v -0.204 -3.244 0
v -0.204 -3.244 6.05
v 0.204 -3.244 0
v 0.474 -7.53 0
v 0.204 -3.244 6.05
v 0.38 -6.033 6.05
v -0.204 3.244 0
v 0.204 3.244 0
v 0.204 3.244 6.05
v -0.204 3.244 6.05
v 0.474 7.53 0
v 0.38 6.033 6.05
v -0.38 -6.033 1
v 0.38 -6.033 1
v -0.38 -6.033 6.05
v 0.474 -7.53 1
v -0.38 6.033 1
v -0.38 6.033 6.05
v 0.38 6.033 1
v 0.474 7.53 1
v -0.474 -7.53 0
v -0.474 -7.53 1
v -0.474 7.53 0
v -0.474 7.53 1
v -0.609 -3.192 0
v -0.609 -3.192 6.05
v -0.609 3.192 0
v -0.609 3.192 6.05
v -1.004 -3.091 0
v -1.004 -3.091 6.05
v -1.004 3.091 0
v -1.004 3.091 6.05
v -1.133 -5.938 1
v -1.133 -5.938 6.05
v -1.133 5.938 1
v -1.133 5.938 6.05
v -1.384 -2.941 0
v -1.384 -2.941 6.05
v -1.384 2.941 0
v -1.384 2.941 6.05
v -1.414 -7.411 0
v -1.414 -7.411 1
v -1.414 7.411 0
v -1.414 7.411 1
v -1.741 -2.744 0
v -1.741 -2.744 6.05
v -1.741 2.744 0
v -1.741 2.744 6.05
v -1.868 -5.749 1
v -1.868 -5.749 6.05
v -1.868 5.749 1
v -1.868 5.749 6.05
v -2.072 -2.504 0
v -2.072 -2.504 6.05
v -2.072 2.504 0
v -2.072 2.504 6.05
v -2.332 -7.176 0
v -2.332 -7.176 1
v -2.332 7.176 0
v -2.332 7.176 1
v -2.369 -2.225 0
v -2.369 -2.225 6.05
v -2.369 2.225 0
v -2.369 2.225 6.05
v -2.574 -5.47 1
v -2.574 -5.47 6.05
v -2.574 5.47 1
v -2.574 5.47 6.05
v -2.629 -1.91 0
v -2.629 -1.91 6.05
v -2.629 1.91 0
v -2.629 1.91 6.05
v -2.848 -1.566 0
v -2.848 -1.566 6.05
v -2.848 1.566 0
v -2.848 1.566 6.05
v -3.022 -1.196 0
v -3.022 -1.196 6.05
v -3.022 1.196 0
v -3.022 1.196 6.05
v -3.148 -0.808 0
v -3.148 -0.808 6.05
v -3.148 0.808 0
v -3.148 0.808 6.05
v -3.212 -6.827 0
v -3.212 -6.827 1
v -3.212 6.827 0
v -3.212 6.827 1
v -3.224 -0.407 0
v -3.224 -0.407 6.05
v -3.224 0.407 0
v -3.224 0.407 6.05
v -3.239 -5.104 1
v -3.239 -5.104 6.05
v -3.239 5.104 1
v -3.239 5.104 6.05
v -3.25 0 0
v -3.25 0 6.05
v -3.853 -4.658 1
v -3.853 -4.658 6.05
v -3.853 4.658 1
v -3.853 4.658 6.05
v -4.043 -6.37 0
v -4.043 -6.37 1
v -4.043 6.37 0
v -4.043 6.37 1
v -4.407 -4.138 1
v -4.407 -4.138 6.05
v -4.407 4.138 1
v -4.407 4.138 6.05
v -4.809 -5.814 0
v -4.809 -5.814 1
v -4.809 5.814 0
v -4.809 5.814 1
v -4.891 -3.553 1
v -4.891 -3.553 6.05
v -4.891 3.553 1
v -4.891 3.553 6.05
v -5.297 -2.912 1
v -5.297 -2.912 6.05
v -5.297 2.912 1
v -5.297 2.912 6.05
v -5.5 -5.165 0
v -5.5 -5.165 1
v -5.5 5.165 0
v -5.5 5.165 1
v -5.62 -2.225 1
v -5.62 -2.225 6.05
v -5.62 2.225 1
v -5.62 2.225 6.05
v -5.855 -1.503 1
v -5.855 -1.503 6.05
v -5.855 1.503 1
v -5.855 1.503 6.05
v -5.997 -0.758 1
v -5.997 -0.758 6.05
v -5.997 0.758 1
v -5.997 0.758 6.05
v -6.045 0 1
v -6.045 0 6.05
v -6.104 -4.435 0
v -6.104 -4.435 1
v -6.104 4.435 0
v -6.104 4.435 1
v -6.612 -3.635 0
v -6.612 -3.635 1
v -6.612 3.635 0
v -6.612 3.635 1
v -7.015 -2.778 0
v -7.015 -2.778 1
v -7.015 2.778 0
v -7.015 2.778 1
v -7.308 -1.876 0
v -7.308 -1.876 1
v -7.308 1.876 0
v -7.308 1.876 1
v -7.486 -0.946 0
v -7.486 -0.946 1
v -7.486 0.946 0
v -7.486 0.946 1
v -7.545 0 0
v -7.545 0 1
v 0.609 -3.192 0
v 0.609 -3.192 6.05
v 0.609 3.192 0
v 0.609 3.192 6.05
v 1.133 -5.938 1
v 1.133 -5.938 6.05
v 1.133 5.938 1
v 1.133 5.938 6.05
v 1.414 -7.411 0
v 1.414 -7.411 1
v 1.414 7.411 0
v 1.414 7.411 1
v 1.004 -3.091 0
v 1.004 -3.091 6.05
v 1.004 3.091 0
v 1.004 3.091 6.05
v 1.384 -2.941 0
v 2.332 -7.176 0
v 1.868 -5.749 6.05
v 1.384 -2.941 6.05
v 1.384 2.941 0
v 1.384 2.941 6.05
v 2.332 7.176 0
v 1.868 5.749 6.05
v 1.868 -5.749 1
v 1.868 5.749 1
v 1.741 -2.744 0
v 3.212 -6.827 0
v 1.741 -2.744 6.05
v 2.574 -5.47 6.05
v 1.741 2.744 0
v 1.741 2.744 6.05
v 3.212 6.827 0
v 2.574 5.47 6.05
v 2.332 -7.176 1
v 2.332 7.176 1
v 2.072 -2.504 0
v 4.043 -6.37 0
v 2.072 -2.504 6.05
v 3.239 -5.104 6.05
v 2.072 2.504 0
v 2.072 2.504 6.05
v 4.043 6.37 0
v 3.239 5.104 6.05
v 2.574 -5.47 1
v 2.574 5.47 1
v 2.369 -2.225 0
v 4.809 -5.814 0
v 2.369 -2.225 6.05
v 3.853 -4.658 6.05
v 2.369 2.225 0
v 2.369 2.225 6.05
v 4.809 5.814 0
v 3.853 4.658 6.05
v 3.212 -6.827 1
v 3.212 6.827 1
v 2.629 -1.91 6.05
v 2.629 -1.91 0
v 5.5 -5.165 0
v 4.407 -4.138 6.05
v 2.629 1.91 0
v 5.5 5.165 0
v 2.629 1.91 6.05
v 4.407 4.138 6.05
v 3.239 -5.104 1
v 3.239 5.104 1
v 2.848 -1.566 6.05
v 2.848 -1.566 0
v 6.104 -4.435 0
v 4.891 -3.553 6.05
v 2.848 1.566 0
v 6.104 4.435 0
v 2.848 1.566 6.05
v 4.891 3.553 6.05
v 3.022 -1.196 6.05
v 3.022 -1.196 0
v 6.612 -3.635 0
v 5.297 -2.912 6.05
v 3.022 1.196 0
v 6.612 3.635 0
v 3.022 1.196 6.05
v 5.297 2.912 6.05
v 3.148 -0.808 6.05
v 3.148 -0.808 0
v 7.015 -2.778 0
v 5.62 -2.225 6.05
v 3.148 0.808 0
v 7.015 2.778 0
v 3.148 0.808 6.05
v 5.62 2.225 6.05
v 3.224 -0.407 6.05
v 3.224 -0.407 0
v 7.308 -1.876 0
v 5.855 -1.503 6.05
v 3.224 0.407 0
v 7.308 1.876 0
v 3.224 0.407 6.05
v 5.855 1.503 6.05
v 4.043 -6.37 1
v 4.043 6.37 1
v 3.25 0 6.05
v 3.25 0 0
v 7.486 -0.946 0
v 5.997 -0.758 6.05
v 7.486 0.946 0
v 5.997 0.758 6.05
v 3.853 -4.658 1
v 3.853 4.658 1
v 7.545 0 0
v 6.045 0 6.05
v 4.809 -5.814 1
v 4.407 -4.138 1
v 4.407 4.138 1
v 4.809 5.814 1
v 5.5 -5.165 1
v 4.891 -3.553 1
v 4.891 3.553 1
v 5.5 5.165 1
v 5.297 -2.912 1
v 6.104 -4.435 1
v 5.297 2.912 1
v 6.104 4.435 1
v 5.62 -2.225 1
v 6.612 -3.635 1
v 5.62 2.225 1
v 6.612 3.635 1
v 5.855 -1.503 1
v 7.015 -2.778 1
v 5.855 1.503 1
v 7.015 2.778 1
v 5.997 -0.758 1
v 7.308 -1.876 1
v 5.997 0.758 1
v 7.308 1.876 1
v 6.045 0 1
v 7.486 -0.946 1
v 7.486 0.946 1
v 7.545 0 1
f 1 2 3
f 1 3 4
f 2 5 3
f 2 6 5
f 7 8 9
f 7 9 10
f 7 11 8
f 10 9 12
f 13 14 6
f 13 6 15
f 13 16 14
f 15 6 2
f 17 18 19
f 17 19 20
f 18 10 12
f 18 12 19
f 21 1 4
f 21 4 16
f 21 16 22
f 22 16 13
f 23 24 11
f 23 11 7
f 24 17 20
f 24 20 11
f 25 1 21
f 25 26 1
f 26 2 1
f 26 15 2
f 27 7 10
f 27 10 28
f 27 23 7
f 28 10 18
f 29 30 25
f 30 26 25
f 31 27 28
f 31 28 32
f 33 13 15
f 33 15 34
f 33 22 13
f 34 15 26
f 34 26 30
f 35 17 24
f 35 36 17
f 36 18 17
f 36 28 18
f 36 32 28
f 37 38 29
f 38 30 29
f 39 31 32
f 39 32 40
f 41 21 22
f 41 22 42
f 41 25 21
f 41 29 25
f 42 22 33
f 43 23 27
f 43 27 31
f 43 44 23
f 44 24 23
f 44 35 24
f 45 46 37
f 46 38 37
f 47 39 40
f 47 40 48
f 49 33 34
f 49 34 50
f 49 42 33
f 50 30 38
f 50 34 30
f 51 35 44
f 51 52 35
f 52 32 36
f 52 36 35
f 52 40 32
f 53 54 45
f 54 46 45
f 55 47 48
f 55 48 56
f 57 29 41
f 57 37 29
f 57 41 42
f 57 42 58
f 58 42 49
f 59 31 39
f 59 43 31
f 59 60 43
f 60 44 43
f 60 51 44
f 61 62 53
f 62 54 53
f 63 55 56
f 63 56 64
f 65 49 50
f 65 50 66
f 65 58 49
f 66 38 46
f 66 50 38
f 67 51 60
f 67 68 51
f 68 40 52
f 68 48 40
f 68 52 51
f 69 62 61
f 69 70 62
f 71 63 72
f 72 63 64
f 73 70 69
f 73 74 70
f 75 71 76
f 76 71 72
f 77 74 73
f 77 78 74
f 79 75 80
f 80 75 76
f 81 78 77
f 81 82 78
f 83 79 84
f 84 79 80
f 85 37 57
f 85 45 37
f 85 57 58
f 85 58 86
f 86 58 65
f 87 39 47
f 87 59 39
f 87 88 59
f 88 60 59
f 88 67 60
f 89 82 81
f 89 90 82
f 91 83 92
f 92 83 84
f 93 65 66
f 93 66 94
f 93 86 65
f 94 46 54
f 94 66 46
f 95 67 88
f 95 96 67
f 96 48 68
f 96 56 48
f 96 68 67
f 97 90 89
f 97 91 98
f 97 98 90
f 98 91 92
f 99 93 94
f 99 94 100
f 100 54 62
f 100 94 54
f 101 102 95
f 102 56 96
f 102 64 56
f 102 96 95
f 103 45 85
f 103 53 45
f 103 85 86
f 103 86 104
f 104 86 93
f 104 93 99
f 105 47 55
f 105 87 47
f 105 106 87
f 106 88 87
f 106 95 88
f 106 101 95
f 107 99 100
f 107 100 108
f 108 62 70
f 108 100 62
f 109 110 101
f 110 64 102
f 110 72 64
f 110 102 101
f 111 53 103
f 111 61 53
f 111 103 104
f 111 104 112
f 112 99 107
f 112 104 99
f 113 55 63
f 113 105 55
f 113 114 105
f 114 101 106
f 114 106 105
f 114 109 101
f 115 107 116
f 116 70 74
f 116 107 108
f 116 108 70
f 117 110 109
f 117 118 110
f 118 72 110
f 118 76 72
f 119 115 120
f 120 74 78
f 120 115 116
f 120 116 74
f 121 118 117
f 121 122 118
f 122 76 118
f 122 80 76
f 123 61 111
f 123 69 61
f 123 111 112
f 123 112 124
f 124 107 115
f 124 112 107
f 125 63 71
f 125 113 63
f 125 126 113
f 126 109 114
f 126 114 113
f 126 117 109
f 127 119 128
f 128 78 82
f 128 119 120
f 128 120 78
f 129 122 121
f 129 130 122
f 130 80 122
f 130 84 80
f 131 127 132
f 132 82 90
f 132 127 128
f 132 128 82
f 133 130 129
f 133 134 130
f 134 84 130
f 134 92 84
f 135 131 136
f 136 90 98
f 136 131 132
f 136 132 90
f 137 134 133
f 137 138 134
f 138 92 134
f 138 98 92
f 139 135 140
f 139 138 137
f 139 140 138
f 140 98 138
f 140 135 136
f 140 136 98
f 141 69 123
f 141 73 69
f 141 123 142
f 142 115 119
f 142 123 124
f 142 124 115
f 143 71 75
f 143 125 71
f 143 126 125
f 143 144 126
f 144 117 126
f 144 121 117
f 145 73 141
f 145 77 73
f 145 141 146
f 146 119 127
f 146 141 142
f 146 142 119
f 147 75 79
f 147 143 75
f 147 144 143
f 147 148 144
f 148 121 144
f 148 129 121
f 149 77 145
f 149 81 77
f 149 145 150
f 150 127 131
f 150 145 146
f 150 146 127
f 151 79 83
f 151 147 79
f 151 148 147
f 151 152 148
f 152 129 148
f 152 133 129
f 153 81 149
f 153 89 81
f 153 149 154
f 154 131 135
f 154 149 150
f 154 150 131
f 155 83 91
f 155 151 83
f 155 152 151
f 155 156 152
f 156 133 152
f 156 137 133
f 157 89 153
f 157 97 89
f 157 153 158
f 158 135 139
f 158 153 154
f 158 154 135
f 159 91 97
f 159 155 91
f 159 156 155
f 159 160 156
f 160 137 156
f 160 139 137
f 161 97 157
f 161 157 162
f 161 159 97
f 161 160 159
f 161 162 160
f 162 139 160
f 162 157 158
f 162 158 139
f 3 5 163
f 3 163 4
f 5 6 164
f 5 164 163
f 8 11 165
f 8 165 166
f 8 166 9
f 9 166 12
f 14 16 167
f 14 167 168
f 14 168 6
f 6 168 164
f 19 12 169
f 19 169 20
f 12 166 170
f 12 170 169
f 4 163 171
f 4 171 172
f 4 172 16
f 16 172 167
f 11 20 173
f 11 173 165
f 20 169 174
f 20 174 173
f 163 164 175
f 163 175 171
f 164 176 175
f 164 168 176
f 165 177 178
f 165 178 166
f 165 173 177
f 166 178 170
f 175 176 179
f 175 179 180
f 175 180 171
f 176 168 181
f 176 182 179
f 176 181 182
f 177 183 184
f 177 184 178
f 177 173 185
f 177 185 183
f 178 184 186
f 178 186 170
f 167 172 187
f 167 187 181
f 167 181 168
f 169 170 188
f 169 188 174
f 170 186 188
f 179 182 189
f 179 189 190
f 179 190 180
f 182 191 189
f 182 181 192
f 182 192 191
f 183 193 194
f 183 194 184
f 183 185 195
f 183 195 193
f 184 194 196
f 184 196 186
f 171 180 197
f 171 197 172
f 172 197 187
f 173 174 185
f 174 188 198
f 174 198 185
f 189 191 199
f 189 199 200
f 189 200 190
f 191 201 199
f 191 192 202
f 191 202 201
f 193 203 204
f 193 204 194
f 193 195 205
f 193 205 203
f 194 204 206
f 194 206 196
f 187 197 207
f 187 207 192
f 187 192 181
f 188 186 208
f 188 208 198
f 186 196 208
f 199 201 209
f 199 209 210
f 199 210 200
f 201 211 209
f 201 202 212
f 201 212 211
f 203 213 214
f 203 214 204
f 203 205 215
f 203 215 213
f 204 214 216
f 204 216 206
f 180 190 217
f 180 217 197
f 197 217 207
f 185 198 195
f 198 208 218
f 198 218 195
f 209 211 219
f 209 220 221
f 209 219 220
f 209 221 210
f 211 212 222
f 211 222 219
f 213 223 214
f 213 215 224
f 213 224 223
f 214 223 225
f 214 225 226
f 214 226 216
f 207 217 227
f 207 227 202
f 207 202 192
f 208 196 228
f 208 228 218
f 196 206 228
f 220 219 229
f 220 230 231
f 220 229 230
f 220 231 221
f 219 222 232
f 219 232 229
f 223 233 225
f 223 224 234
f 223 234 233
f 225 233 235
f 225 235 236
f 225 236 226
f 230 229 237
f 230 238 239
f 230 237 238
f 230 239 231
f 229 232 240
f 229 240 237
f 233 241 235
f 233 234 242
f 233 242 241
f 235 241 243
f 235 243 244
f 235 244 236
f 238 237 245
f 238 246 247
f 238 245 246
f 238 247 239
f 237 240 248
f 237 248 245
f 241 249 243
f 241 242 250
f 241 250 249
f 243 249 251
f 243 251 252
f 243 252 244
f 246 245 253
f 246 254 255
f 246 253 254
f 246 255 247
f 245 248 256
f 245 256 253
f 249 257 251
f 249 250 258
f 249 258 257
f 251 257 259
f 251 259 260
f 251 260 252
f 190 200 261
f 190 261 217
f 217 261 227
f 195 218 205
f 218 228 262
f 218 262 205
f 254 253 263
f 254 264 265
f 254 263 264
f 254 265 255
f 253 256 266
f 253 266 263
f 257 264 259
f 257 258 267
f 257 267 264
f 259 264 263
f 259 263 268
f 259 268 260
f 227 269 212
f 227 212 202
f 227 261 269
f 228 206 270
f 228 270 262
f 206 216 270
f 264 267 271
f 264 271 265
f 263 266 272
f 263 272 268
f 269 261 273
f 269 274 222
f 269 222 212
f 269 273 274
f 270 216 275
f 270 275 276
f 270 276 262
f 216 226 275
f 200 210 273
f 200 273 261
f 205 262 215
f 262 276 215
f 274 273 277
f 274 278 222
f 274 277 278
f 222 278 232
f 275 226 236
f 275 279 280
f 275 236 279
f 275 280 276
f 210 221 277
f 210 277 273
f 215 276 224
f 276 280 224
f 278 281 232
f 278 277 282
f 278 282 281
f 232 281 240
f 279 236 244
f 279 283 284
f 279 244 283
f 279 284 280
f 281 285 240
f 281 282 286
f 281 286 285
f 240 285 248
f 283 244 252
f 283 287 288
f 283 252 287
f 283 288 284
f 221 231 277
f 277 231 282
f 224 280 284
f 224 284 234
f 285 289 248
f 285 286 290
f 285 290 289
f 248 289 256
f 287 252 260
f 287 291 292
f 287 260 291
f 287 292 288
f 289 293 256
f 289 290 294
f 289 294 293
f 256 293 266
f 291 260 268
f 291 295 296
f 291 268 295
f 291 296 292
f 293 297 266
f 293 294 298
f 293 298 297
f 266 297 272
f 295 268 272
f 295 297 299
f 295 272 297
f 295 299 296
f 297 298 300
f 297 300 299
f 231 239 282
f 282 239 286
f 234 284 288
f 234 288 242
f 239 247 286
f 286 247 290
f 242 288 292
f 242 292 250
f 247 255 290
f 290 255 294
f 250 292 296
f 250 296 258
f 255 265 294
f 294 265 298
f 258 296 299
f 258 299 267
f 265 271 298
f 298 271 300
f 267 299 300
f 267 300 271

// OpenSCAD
include <../Parameters.scad>

module 888_3016(draft = true){

    inner_diameter = 6.5;
    outer_diameter = bearing_efsm_12_d + 3;
    rim_height = 1;
    bearng_ball_height = 10.1/2;
    difference(){
        union(){
            cylinder(h = rim_height, d = outer_diameter, $fn = 50);
            translate([0,0,rim_height])
                cylinder(h = bearng_ball_height, d = bearing_efsm_12_d, $fn = 50);
        }
        cylinder(h = 2 * bearng_ball_height , d = inner_diameter, $fn = 50);
    }
}
888_3016();
